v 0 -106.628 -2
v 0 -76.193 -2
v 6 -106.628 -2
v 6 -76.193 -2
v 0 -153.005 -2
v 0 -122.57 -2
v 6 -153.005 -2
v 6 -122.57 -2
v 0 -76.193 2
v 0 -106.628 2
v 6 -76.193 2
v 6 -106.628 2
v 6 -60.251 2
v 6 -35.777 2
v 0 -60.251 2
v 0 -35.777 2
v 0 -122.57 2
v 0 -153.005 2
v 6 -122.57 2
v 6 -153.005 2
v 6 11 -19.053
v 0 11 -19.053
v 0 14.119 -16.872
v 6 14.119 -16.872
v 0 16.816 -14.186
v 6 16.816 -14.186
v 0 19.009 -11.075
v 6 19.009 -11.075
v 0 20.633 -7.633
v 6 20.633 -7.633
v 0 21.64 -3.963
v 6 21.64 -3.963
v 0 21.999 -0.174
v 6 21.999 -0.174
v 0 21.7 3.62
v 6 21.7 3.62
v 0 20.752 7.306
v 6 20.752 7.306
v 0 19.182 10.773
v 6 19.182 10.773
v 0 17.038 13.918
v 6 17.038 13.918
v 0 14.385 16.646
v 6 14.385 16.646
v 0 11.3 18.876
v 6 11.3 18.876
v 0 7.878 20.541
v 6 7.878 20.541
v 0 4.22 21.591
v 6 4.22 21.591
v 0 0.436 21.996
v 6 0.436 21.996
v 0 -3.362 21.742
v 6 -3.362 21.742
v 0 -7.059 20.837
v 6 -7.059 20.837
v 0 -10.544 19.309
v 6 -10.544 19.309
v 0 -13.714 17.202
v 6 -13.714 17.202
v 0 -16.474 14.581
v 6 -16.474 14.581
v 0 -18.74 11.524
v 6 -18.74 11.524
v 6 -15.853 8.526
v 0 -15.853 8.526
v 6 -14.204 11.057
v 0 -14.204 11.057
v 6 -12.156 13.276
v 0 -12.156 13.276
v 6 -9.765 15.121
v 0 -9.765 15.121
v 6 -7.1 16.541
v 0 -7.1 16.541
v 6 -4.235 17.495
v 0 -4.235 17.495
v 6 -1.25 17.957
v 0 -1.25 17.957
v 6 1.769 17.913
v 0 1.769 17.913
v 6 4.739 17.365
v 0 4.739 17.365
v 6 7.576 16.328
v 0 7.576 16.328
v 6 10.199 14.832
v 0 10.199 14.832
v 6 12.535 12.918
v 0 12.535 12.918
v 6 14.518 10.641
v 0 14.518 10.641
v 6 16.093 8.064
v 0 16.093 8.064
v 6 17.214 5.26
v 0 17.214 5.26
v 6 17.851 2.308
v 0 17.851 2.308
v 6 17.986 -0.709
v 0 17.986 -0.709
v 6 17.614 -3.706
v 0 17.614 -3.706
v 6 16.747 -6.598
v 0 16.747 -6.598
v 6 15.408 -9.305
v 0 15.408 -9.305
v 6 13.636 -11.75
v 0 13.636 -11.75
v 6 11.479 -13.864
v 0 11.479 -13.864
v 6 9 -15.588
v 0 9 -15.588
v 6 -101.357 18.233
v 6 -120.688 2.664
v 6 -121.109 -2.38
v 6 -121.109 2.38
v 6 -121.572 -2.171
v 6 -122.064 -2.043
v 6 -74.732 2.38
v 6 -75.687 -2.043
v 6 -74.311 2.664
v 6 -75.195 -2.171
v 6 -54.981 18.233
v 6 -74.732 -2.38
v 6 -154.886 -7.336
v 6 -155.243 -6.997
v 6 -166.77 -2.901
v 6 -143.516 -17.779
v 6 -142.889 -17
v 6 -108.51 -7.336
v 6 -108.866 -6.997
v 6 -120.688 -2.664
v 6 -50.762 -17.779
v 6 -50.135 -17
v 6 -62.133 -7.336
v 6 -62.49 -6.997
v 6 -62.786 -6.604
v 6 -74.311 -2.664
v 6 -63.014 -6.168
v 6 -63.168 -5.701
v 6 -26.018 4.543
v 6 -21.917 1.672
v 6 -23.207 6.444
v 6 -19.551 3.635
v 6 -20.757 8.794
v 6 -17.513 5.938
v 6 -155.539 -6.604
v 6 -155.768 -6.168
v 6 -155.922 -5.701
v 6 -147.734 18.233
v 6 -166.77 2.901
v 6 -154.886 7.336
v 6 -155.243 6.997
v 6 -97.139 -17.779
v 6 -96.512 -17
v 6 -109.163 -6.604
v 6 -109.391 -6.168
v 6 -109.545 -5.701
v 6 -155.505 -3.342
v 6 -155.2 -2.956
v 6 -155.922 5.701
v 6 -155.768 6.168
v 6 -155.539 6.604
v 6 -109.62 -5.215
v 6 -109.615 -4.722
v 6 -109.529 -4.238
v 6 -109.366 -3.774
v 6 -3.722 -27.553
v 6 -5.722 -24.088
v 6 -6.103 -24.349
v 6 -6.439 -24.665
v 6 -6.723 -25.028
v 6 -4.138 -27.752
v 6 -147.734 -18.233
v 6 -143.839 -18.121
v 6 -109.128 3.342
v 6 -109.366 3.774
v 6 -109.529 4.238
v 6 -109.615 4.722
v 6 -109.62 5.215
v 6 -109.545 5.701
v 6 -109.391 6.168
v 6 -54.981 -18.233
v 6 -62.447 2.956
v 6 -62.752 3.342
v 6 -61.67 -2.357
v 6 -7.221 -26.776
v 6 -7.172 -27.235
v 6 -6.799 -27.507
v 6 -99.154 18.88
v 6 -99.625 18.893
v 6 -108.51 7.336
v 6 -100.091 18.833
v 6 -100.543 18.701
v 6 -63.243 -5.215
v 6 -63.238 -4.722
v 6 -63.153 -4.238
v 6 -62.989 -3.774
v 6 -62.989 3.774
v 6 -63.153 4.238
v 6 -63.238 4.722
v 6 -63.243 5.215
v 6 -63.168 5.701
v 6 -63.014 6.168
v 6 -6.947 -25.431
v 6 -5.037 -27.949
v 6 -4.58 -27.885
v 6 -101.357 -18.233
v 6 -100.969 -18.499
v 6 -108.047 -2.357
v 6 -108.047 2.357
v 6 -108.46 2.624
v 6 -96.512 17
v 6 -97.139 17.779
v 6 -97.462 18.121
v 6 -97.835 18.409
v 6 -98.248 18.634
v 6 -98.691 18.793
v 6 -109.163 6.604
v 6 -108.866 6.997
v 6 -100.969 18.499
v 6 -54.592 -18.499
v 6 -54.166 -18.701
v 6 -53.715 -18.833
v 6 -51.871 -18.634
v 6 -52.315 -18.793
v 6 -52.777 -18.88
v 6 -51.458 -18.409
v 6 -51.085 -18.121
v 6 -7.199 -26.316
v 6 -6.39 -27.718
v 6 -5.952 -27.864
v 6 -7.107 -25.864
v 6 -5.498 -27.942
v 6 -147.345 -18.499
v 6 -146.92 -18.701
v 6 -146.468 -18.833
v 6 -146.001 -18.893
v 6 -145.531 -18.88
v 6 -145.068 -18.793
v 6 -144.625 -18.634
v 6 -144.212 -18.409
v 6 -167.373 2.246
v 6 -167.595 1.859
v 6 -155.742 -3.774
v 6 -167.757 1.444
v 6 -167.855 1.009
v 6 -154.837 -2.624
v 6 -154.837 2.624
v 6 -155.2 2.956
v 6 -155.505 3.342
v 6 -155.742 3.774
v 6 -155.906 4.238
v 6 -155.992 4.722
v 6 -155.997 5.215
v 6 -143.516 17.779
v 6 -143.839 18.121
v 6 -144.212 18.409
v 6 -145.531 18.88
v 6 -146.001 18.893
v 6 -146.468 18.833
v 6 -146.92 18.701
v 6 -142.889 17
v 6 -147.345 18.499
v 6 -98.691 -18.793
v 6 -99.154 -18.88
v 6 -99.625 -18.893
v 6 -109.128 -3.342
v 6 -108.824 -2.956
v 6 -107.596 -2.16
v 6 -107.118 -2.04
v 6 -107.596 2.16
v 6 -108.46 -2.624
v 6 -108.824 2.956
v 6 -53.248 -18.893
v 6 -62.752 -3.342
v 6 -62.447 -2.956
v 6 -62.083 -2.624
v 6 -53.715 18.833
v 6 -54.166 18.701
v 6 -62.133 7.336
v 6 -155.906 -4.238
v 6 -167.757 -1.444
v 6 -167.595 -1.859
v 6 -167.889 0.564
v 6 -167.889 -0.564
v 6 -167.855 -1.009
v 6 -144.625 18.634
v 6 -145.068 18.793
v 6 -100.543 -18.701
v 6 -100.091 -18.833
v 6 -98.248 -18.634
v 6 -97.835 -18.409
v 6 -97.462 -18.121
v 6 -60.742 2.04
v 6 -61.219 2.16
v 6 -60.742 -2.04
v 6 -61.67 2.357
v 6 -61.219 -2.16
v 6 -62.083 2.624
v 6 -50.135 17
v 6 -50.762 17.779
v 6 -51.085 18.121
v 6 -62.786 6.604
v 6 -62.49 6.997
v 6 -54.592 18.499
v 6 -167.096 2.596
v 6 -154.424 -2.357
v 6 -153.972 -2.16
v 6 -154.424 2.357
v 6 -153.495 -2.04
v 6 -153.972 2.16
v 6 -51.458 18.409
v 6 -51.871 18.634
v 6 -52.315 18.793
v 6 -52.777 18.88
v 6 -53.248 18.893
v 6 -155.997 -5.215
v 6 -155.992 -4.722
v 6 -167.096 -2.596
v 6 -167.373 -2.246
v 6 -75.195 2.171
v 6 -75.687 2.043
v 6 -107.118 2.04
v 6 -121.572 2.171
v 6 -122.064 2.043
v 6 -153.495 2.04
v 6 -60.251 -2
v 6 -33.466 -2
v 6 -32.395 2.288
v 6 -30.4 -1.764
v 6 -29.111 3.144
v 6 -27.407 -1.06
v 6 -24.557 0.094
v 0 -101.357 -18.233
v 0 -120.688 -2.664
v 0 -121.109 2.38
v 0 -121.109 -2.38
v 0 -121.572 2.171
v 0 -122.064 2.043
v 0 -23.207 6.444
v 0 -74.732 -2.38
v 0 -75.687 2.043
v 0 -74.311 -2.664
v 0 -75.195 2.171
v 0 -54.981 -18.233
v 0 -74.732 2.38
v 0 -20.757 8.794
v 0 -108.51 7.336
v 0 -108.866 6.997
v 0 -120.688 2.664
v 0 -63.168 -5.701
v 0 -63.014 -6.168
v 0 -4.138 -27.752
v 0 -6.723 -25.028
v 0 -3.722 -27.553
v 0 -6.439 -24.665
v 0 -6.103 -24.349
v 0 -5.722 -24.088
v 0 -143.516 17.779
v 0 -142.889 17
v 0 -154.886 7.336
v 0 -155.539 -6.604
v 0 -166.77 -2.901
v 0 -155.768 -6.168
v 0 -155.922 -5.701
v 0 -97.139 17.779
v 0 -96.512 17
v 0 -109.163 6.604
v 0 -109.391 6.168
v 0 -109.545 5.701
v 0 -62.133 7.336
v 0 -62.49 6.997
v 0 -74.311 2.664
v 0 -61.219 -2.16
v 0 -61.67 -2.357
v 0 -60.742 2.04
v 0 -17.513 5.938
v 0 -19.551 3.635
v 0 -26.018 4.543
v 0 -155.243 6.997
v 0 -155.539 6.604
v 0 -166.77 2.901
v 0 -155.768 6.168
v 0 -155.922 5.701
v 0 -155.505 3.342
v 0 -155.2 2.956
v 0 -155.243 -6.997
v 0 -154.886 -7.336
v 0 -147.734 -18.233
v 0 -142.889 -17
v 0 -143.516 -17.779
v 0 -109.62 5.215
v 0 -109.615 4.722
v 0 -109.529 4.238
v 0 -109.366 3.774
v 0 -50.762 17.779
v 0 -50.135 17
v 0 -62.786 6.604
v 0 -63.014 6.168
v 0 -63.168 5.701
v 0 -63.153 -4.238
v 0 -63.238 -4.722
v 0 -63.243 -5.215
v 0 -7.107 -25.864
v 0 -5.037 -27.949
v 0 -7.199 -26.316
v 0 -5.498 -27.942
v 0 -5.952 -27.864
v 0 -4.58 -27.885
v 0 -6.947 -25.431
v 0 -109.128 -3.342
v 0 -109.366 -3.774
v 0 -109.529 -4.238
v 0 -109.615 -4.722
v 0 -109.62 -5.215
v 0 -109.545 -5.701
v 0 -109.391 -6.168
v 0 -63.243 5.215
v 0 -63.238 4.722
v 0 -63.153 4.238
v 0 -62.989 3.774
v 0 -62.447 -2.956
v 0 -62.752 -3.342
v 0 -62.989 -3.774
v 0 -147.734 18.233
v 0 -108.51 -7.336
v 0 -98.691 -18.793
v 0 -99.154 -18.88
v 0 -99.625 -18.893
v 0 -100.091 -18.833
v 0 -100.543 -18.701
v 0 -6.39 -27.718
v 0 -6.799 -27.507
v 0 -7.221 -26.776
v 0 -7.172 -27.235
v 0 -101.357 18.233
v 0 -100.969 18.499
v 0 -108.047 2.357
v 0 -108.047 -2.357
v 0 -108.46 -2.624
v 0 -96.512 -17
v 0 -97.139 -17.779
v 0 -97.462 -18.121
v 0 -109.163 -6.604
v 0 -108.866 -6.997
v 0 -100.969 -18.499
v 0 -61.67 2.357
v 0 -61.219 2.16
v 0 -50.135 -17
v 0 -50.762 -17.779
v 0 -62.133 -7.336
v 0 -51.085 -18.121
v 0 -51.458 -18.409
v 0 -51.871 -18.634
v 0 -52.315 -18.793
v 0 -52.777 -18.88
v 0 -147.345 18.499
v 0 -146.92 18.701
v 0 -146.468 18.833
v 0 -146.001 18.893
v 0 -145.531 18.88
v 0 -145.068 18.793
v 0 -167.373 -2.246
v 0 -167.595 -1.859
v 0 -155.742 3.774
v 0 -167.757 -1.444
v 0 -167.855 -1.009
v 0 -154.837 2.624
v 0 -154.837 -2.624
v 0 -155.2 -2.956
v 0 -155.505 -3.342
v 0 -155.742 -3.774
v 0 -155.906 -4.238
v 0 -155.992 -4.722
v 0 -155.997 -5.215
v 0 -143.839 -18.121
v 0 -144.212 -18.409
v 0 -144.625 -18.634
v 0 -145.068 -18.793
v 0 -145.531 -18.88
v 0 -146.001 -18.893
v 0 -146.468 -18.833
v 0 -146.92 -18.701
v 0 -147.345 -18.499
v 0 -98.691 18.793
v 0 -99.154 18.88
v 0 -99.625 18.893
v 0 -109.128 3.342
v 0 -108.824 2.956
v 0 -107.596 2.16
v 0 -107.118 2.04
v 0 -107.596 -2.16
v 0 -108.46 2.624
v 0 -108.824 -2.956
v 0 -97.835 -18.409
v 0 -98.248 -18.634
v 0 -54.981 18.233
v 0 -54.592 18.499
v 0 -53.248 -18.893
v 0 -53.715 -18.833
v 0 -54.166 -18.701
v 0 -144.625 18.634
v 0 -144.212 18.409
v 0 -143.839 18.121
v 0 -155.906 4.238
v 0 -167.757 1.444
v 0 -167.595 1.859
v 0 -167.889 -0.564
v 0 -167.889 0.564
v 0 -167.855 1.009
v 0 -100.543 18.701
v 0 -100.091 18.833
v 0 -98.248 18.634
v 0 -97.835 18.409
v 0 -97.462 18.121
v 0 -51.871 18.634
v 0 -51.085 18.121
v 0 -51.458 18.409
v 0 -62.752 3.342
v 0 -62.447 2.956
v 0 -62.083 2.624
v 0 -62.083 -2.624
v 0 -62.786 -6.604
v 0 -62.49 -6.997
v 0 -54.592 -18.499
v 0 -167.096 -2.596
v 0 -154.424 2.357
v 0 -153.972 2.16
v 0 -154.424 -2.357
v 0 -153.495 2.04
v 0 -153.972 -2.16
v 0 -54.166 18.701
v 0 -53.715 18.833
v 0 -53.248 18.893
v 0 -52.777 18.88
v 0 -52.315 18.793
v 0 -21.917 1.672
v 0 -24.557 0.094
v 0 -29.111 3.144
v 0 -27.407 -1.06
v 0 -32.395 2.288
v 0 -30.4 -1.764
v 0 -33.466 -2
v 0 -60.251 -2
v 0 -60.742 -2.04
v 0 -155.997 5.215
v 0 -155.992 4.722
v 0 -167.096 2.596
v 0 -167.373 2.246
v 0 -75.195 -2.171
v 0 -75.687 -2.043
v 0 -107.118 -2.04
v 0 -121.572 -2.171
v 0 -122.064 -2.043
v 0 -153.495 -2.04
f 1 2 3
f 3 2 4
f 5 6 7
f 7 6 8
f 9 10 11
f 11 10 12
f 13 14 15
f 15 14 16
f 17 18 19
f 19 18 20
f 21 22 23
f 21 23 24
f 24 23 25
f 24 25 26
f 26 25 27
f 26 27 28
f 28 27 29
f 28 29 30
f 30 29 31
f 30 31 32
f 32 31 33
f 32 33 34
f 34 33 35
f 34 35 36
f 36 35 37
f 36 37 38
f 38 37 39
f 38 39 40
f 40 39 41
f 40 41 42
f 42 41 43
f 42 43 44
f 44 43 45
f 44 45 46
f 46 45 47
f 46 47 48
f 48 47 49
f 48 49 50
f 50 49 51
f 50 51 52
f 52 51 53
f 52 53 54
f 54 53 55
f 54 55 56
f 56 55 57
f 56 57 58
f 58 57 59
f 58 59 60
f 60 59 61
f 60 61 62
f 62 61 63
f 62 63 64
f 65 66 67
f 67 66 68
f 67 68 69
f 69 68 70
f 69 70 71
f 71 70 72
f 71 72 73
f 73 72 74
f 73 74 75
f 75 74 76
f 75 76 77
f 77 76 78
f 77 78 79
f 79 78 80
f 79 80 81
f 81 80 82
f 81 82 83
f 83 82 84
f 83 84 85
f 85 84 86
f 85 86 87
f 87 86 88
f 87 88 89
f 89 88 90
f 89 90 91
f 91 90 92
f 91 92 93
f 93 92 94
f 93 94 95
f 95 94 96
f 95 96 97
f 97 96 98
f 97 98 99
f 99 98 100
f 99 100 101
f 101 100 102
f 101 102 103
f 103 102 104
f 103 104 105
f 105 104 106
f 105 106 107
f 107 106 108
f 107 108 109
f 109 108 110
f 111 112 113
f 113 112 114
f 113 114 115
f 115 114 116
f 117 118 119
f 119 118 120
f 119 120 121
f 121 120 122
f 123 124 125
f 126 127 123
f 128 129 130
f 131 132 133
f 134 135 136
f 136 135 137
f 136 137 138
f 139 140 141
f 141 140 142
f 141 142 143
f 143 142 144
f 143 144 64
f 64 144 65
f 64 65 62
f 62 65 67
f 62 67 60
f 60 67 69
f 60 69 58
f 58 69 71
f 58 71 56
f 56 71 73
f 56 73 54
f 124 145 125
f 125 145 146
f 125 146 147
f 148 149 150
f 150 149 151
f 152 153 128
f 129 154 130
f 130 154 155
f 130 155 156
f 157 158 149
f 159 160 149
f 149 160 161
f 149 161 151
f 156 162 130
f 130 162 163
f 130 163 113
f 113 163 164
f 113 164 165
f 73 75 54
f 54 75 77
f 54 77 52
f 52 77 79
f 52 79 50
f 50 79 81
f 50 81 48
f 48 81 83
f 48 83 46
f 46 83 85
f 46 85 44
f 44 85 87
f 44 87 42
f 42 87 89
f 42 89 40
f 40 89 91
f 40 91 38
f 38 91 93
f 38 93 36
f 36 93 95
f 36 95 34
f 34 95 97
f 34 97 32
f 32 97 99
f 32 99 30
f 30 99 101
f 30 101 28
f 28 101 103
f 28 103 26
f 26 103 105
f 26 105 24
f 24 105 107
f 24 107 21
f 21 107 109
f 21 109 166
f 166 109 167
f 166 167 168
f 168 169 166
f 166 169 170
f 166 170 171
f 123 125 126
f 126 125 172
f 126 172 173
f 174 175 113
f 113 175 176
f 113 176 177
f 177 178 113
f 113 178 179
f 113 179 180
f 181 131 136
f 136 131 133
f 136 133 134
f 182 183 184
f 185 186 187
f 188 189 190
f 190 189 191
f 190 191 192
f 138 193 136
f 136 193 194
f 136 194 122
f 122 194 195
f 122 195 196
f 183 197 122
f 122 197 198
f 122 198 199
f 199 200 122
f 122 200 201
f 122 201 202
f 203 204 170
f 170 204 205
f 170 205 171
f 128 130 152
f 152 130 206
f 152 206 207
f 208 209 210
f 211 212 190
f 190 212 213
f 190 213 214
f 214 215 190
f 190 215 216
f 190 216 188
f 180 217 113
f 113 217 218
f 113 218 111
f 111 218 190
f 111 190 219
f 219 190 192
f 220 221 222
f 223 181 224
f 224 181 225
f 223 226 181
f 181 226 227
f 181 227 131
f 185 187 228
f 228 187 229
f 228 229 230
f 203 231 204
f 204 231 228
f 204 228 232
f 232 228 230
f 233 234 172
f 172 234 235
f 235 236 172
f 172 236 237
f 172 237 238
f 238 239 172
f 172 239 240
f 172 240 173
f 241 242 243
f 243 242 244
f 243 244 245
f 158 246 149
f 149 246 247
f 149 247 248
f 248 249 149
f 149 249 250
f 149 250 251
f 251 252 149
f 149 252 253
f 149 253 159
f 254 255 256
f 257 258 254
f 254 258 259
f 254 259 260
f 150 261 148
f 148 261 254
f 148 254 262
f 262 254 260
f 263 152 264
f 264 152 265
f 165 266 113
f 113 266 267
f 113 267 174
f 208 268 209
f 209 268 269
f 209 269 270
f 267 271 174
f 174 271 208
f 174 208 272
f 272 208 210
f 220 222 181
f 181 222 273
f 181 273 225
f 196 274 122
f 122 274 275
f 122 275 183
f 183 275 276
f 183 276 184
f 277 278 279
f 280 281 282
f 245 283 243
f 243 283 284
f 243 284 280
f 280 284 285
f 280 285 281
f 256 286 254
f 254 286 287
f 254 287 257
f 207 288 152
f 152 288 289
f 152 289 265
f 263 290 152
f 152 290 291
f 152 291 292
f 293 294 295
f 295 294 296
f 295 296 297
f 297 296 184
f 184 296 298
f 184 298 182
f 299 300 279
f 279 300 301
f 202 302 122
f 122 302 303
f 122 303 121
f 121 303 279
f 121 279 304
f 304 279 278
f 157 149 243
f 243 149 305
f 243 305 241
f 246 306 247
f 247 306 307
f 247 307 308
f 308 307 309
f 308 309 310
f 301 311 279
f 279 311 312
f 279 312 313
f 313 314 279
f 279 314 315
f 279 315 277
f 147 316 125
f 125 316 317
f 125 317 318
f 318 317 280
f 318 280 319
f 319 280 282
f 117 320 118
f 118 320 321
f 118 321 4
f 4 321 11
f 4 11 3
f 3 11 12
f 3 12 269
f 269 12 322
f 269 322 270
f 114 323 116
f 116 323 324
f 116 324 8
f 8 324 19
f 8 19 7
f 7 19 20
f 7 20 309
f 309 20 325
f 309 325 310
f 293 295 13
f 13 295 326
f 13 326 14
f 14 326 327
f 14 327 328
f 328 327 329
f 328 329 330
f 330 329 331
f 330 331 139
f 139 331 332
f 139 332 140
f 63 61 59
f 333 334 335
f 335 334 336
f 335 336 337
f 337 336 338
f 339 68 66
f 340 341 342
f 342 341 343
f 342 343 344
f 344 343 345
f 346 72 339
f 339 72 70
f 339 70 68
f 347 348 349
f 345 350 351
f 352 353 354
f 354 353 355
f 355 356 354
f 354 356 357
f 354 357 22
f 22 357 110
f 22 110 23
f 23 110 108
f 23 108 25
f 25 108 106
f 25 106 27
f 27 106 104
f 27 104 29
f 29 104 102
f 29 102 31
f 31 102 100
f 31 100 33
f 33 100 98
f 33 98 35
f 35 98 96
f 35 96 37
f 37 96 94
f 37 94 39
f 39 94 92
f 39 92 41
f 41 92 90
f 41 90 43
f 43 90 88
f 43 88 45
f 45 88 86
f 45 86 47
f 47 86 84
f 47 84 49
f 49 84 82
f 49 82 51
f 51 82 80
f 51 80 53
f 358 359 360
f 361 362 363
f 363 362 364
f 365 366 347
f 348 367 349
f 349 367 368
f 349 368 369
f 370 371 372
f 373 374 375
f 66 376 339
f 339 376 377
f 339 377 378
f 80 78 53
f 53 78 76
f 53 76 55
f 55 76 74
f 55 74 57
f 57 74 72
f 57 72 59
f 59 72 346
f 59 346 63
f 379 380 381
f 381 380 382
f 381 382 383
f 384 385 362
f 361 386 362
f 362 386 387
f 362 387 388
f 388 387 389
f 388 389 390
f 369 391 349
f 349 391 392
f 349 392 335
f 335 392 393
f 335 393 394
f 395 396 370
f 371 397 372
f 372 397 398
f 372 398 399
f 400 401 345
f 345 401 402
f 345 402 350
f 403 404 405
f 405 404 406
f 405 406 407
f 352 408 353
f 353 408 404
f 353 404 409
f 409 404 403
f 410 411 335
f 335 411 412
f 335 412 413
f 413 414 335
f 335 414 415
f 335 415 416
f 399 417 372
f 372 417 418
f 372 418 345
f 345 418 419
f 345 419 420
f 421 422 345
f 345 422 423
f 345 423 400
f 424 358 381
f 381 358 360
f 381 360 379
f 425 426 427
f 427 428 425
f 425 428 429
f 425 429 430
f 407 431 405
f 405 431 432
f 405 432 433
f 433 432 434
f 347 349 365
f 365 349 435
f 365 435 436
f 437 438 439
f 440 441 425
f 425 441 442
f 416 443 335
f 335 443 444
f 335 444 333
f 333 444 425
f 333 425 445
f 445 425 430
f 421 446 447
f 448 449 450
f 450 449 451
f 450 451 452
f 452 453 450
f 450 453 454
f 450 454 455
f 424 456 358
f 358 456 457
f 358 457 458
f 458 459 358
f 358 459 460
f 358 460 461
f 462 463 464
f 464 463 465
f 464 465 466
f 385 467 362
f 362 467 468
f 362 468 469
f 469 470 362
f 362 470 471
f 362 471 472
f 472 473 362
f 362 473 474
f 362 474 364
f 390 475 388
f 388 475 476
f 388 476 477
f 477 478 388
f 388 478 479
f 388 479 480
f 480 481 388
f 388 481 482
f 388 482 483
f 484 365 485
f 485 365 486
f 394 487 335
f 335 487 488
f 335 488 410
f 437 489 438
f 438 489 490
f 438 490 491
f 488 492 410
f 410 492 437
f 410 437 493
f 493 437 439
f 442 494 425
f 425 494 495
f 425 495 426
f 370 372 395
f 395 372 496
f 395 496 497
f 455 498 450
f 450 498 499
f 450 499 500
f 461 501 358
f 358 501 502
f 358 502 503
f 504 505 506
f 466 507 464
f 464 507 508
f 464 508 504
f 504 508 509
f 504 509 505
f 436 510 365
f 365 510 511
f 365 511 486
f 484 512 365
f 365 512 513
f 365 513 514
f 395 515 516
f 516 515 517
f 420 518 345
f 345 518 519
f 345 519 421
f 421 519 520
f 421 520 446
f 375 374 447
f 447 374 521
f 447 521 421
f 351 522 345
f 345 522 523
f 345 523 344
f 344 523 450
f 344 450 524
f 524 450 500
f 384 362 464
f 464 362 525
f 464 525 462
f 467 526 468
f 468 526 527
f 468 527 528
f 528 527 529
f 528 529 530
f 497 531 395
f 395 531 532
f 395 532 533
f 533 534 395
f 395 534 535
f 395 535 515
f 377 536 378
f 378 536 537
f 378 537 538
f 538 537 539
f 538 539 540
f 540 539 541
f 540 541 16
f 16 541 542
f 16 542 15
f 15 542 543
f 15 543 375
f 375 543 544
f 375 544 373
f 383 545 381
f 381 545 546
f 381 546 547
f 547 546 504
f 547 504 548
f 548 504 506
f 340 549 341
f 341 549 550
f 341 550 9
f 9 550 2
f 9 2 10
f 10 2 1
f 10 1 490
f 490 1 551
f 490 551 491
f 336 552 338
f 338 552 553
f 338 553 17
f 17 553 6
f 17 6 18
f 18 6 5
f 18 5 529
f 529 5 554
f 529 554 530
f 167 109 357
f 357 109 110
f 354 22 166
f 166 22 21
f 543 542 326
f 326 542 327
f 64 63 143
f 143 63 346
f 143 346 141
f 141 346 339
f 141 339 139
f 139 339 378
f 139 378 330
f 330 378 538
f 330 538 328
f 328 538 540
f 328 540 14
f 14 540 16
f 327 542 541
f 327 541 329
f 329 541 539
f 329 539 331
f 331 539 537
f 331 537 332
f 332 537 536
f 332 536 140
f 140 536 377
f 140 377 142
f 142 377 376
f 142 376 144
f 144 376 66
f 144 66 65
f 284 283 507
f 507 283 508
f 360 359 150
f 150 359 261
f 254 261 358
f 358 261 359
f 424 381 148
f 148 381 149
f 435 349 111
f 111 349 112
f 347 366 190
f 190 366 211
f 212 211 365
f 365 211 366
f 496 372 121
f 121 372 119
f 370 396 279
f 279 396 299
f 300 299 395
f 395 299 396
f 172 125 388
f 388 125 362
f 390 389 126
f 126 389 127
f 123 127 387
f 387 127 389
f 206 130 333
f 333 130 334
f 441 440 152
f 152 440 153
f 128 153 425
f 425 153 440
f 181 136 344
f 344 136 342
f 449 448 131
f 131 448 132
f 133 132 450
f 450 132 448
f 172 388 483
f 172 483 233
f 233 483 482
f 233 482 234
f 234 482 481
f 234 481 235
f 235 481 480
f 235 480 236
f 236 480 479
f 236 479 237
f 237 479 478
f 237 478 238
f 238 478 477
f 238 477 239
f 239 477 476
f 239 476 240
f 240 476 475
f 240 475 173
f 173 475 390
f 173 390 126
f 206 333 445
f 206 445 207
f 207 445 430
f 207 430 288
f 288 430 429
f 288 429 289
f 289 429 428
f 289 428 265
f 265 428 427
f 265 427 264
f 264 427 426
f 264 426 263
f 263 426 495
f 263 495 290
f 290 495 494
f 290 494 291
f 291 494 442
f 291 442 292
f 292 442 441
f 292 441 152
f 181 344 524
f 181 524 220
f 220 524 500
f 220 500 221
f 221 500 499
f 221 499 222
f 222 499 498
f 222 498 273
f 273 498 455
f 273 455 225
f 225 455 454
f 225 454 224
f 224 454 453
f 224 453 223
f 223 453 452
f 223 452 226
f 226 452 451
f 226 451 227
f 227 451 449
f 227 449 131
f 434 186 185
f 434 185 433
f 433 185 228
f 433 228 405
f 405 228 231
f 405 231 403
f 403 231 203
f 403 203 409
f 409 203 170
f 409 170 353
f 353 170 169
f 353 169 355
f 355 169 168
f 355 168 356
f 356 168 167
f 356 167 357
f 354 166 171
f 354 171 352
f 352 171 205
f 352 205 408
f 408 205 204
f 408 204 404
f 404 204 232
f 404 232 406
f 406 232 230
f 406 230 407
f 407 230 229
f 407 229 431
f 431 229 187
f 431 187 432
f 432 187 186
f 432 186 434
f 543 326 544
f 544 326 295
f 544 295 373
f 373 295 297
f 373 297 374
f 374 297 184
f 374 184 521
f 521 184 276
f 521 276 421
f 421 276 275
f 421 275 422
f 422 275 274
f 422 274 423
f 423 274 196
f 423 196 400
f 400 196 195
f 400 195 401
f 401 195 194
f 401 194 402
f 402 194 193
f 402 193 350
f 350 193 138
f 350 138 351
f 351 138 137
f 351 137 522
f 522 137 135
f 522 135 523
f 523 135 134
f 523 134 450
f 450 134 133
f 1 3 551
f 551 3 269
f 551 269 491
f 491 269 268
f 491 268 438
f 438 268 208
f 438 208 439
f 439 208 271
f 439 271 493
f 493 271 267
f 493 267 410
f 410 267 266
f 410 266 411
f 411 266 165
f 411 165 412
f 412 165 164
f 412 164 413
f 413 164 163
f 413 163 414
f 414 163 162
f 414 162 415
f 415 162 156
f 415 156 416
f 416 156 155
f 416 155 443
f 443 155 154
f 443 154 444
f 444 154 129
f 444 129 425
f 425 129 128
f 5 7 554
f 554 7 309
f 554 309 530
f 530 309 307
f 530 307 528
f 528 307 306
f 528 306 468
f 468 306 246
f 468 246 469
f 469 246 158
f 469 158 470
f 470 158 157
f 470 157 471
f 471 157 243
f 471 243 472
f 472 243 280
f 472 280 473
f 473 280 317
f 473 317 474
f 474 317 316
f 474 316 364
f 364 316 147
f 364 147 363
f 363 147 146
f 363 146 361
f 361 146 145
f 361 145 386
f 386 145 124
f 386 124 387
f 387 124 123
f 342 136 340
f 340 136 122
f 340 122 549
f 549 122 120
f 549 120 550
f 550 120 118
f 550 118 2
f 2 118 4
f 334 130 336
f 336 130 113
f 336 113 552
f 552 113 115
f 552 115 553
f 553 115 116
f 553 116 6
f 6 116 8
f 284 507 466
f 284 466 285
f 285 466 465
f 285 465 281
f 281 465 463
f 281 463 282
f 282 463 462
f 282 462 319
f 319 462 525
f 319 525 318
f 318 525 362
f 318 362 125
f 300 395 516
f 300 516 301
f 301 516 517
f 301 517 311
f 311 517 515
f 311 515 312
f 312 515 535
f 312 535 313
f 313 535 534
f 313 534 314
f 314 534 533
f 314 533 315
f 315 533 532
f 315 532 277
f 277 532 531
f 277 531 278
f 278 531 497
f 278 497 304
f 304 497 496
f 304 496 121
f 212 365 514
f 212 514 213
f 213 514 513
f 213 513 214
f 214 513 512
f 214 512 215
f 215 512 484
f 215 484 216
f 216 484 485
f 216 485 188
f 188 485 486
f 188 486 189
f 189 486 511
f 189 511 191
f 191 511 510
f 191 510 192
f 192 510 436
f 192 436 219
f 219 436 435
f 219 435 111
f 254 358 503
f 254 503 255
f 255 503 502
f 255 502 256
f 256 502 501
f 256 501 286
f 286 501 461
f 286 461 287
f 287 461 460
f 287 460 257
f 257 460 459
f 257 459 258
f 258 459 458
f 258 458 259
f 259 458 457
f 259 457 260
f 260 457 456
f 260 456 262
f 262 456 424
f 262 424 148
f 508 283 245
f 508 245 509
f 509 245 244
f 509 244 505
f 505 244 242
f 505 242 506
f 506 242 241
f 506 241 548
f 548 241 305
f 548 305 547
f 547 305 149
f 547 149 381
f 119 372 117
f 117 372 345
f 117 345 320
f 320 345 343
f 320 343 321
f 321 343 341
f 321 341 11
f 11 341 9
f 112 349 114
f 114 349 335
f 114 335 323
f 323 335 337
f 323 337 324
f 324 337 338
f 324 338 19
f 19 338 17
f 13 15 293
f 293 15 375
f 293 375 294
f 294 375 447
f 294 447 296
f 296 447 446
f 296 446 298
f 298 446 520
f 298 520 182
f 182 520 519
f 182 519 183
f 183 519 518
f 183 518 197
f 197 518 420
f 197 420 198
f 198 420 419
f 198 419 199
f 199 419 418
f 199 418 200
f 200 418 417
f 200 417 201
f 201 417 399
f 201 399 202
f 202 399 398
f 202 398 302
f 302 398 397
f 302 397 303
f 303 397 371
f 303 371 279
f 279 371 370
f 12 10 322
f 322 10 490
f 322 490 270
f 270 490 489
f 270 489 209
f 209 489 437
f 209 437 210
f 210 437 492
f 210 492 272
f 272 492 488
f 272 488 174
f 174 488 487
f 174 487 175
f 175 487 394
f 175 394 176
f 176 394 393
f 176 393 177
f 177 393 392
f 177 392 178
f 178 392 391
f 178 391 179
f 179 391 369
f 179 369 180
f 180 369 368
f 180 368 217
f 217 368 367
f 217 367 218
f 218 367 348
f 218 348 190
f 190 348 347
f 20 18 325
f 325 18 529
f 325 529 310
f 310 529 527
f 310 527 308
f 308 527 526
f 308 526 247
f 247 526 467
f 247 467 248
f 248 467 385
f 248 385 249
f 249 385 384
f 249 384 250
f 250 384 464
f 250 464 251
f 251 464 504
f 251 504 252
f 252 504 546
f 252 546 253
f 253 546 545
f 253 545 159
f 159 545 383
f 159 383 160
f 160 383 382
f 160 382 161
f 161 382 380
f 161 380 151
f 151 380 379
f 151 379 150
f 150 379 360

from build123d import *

# Parameters (mm, degrees)
SKETCH1_R           = 22
SKETCH1_R_2         = 18
BOSS_EXTRUDE1_DEPTH = 6
BOSS_EXTRUDE2_DEPTH = 6
CUT_EXTRUDE1_DEPTH  = 37.933063475
SKETCH4_W           = 4
SKETCH4_H           = 30
BOSS_EXTRUDE3_DEPTH = 6
CUT_EXTRUDE2_DEPTH  = 57.332617611
FILLET1_R           = 20
FILLET2_R           = 20
SKETCH6_W           = 4
SKETCH6_H           = 120
BOSS_EXTRUDE4_DEPTH = 6
BOSS_EXTRUDE5_DEPTH = 6
FILLET3_R           = 3


with BuildPart() as part:
    # Sketch1 → Boss-Extrude1 (new body)
    with BuildSketch(Plane(origin=(0, 0, 0), x_dir=(0, 0, -1), z_dir=(1, 0, 0))):
        Circle(SKETCH1_R)
        Circle(SKETCH1_R_2, mode=Mode.SUBTRACT)
    extrude(amount=BOSS_EXTRUDE1_DEPTH)

    # Sketch2 → Boss-Extrude2 (add)
    with BuildSketch(Plane(origin=(6, 0, 0), x_dir=(0, 0, -1), z_dir=(1, 0, 0))):
        Polygon((19.052558883, 11), (29.052558883, -6.320508076), (25.588457268, -8.320508076), (15.588457268, 9), align=None)
    extrude(amount=-BOSS_EXTRUDE2_DEPTH)

    # Sketch3 → Cut-Extrude1 (cut, through all)
    with BuildSketch(Plane(origin=(6, 0, 0), x_dir=(0, 0, -1), z_dir=(1, 0, 0))):
        with BuildLine():
            ThreePointArc((18, 0), (14.280360125, -10.957705722), (4.658742812, -17.386664873))
            Line((4.658742812, -17.386664873), (5.694018992, -21.250368178))
            ThreePointArc((5.694018992, -21.250368178), (16.84102585, -14.15555892), (21.913012588, -1.95445115))
            Line((21.913012588, -1.95445115), (15.588457268, 9))
            ThreePointArc((15.588457268, 9), (17.386664873, 4.658742812), (18, 0))
        make_face()
    extrude(amount=-CUT_EXTRUDE1_DEPTH, mode=Mode.SUBTRACT)

    # Sketch4 → Boss-Extrude3 (add)
    with BuildSketch(Plane(origin=(6, 0, 0), x_dir=(0, 0, -1), z_dir=(1, 0, 0))):
        with Locations((0, -32.88854382)):
            Rectangle(SKETCH4_W, SKETCH4_H)
    extrude(amount=-BOSS_EXTRUDE3_DEPTH)

    # Sketch5 → Cut-Extrude2 (cut, through all)
    with BuildSketch(Plane(origin=(6, 0, 0), x_dir=(0, 0, -1), z_dir=(1, 0, 0))):
        with BuildLine():
            Line((2, -21.9089023), (2, -17.88854382))
            Line((2, -17.88854382), (4.658742812, -17.386664873))
            Line((4.658742812, -17.386664873), (5.694018992, -21.250368178))
            ThreePointArc((5.694018992, -21.250368178), (3.876129227, -21.742981124), (2, -21.9089023))
        make_face()
    extrude(amount=-CUT_EXTRUDE2_DEPTH, mode=Mode.SUBTRACT)

    # Fillet1
    # the kernel refuses this fillet: 20 mm, written as the material it adds along each edge
    with BuildSketch(Plane(origin=(6, -21.9089023, 2), x_dir=(0, -1, 0), z_dir=(-1, 0, 0))) as fillet1_piece_1:
        with BuildLine():
            CenterArc((13.86818534, 20), FILLET1_R, 211.588135505, 58.411864495)
            ThreePointArc((-3.16852306, 9.523809524), (-1.033875129, 4.945015522), (0, 0))
            Line((0, 0), (13.86818534, 0))
        make_face()
    extrude(amount=6)
    # the kernel refuses this fillet: 20 mm, written as the material it takes off along each edge
    with BuildSketch(Plane(origin=(36, -17.88854382, -2), x_dir=(0, -1, 0), z_dir=(-1, 0, 0))) as fillet1_2_piece_1:
        with BuildLine():
            CenterArc((12, 20), FILLET1_R, 233.130102354, 36.869897646)
            Line((0, 4), (0, 0))
            Line((0, 0), (12, 0))
        make_face()
    extrude(amount=66, mode=Mode.SUBTRACT)

    # Fillet2
    fillet2_edges = [part.edges().sort_by_distance(p)[0] for p in [
        (3, -17.88854382, 2),
    ]]
    fillet(fillet2_edges, radius=FILLET2_R)

    # Sketch6 → Boss-Extrude4 (add)
    with BuildSketch(Plane.ZY):
        with Locations((0, -107.88854382)):
            Rectangle(SKETCH6_W, SKETCH6_H)
    extrude(amount=-BOSS_EXTRUDE4_DEPTH)

    # Sketch7 → Boss-Extrude5 (add)
    with BuildSketch(Plane(origin=(0, 0, -2), x_dir=(0, 0, -1), z_dir=(1, 0, 0))):
        Polygon((-4, -167.88854382), (-22.115183313, -145.397653808), (-19, -142.88854382), (-4, -161.511780713), align=None)
        Polygon((-4, -115.135017606), (-4, -121.511780713), (-22.115183313, -99.0208907), (-19, -96.511780713), align=None)
        Polygon((-4, -68.758254499), (-4, -75.135017606), (-22.115183313, -52.644127593), (-19, -50.135017606), align=None)
    boss_extrude5 = extrude(amount=BOSS_EXTRUDE5_DEPTH)

    # Mirror1: Boss-Extrude5 across plane
    add(boss_extrude5.mirror(Plane.XY))

    # Fillet3
    # the kernel refuses this fillet: 3 mm, written as the material it adds along each edge
    with BuildSketch(Plane(origin=(0, -161.511780713, 2), x_dir=(0, 1, 0), z_dir=(1, 0, 0)), Plane(origin=(0, -115.135017606, 2), x_dir=(0, 1, 0), z_dir=(1, 0, 0)), Plane(origin=(0, -68.758254499, 2), x_dir=(0, 1, 0), z_dir=(1, 0, 0))) as fillet3_piece_1:
        with BuildLine():
            CenterArc((FILLET3_R * 2.83573990297, FILLET3_R), FILLET3_R, 128.849545597, 141.150454403)
            Line((FILLET3_R * 2.20846240609, FILLET3_R * 1.77879582813), (0, 0))
            Line((0, 0), (FILLET3_R * 2.83573990297, 0))
        make_face()
    extrude(amount=6)
    with BuildSketch(Plane(origin=(0, -121.511780713, 2), x_dir=(0, 0.7787958281290415, 0.6272774968774191), z_dir=(1, 0, 0)), Plane(origin=(0, -75.135017606, 2), x_dir=(0, 0.7787958281290404, 0.6272774968774205), z_dir=(1, 0, 0)), Plane(origin=(0, -121.511780713, -2), x_dir=(0, -1, 0), z_dir=(1, 0, 0)), Plane(origin=(0, -75.135017606, -2), x_dir=(0, -1, 0), z_dir=(1, 0, 0))) as fillet3_piece_2:
        with BuildLine():
            CenterArc((FILLET3_R * 0.352641650581, FILLET3_R), FILLET3_R, 231.150454403, 38.849545597)
            Line((-FILLET3_R * 0.274635846297, FILLET3_R * 0.221204171871), (0, 0))
            Line((0, 0), (FILLET3_R * 0.352641650581, 0))
        make_face()
    extrude(amount=6)
    with BuildSketch(Plane(origin=(0, -161.511780713, -2), x_dir=(0, 1, 0), z_dir=(1, 0, 0)), Plane(origin=(0, -115.135017606, -2), x_dir=(0, 1, 0), z_dir=(1, 0, 0)), Plane(origin=(0, -68.758254499, -2), x_dir=(0, 1, 0), z_dir=(1, 0, 0))) as fillet3_piece_3:
        with BuildLine():
            CenterArc((FILLET3_R * 2.83573990297, -FILLET3_R), FILLET3_R, 90, 141.150454403)
            Line((FILLET3_R * 2.20846240609, -FILLET3_R * 1.77879582813), (0, 0))
            Line((0, 0), (FILLET3_R * 2.83573990297, 0))
        make_face()
    extrude(amount=6)
    # the kernel refuses this fillet: 3 mm, written as the material it takes off along each edge
    with BuildSketch(Plane(origin=(-3.589411592, -167.88854382, 2), x_dir=(0, 0.7787958281290398, 0.6272774968774211), z_dir=(1, 0, 0)), Plane(origin=(-3.589411592, -167.88854382, -2), x_dir=(0, 0, 1), z_dir=(1, 0, 0))) as fillet3_2_piece_1:
        with BuildLine():
            CenterArc((FILLET3_R * 0.478588212289, -FILLET3_R), FILLET3_R, 90, 51.150454403)
            Line((-FILLET3_R * 0.30020761584, -FILLET3_R * 0.372722503123), (0, 0))
            Line((0, 0), (FILLET3_R * 0.478588212289, 0))
        make_face()
    extrude(amount=13.178823184, mode=Mode.SUBTRACT)
    with BuildSketch(Plane(origin=(-7.5, -145.397653808, 20.115183313), x_dir=(0, 0.6272774968774232, -0.7787958281290382), z_dir=(1, 0, 0)), Plane(origin=(-7.5, -99.0208907, 20.115183313), x_dir=(0, 0.6272774968774221, -0.7787958281290391), z_dir=(1, 0, 0)), Plane(origin=(-7.5, -52.644127593, 20.115183313), x_dir=(0, 0.6272774968774235, -0.778795828129038), z_dir=(1, 0, 0)), Plane(origin=(-7.5, -145.397653808, -20.115183313), x_dir=(0, -0.7787958281290382, 0.627277496877423), z_dir=(1, 0, 0)), Plane(origin=(-7.5, -99.0208907, -20.115183313), x_dir=(0, -0.7787958281290382, 0.627277496877423), z_dir=(1, 0, 0)), Plane(origin=(-7.5, -52.644127593, -20.115183313), x_dir=(0, -0.7787958281290385, 0.6272774968774228), z_dir=(1, 0, 0))) as fillet3_2_piece_2:
        with BuildLine():
            CenterArc((FILLET3_R, -FILLET3_R), FILLET3_R, 90, 90)
            Line((0, -FILLET3_R), (0, 0))
            Line((0, 0), (FILLET3_R, 0))
        make_face()
    extrude(amount=21, mode=Mode.SUBTRACT)
    with BuildSketch(Plane(origin=(13.5, -8.320508076, -25.588457268), x_dir=(0, 0.8660254037844379, 0.5000000000000012), z_dir=(-1, 0, 0)), Plane(origin=(13.5, -6.320508076, -29.052558883), x_dir=(0, -0.5000000000000019, 0.8660254037844376), z_dir=(-1, 0, 0))) as fillet3_2_piece_3:
        with BuildLine():
            CenterArc((FILLET3_R, FILLET3_R), FILLET3_R, 180, 90)
            Line((0, FILLET3_R), (0, 0))
            Line((0, 0), (FILLET3_R, 0))
        make_face()
    extrude(amount=21, mode=Mode.SUBTRACT)


solid = part.part
